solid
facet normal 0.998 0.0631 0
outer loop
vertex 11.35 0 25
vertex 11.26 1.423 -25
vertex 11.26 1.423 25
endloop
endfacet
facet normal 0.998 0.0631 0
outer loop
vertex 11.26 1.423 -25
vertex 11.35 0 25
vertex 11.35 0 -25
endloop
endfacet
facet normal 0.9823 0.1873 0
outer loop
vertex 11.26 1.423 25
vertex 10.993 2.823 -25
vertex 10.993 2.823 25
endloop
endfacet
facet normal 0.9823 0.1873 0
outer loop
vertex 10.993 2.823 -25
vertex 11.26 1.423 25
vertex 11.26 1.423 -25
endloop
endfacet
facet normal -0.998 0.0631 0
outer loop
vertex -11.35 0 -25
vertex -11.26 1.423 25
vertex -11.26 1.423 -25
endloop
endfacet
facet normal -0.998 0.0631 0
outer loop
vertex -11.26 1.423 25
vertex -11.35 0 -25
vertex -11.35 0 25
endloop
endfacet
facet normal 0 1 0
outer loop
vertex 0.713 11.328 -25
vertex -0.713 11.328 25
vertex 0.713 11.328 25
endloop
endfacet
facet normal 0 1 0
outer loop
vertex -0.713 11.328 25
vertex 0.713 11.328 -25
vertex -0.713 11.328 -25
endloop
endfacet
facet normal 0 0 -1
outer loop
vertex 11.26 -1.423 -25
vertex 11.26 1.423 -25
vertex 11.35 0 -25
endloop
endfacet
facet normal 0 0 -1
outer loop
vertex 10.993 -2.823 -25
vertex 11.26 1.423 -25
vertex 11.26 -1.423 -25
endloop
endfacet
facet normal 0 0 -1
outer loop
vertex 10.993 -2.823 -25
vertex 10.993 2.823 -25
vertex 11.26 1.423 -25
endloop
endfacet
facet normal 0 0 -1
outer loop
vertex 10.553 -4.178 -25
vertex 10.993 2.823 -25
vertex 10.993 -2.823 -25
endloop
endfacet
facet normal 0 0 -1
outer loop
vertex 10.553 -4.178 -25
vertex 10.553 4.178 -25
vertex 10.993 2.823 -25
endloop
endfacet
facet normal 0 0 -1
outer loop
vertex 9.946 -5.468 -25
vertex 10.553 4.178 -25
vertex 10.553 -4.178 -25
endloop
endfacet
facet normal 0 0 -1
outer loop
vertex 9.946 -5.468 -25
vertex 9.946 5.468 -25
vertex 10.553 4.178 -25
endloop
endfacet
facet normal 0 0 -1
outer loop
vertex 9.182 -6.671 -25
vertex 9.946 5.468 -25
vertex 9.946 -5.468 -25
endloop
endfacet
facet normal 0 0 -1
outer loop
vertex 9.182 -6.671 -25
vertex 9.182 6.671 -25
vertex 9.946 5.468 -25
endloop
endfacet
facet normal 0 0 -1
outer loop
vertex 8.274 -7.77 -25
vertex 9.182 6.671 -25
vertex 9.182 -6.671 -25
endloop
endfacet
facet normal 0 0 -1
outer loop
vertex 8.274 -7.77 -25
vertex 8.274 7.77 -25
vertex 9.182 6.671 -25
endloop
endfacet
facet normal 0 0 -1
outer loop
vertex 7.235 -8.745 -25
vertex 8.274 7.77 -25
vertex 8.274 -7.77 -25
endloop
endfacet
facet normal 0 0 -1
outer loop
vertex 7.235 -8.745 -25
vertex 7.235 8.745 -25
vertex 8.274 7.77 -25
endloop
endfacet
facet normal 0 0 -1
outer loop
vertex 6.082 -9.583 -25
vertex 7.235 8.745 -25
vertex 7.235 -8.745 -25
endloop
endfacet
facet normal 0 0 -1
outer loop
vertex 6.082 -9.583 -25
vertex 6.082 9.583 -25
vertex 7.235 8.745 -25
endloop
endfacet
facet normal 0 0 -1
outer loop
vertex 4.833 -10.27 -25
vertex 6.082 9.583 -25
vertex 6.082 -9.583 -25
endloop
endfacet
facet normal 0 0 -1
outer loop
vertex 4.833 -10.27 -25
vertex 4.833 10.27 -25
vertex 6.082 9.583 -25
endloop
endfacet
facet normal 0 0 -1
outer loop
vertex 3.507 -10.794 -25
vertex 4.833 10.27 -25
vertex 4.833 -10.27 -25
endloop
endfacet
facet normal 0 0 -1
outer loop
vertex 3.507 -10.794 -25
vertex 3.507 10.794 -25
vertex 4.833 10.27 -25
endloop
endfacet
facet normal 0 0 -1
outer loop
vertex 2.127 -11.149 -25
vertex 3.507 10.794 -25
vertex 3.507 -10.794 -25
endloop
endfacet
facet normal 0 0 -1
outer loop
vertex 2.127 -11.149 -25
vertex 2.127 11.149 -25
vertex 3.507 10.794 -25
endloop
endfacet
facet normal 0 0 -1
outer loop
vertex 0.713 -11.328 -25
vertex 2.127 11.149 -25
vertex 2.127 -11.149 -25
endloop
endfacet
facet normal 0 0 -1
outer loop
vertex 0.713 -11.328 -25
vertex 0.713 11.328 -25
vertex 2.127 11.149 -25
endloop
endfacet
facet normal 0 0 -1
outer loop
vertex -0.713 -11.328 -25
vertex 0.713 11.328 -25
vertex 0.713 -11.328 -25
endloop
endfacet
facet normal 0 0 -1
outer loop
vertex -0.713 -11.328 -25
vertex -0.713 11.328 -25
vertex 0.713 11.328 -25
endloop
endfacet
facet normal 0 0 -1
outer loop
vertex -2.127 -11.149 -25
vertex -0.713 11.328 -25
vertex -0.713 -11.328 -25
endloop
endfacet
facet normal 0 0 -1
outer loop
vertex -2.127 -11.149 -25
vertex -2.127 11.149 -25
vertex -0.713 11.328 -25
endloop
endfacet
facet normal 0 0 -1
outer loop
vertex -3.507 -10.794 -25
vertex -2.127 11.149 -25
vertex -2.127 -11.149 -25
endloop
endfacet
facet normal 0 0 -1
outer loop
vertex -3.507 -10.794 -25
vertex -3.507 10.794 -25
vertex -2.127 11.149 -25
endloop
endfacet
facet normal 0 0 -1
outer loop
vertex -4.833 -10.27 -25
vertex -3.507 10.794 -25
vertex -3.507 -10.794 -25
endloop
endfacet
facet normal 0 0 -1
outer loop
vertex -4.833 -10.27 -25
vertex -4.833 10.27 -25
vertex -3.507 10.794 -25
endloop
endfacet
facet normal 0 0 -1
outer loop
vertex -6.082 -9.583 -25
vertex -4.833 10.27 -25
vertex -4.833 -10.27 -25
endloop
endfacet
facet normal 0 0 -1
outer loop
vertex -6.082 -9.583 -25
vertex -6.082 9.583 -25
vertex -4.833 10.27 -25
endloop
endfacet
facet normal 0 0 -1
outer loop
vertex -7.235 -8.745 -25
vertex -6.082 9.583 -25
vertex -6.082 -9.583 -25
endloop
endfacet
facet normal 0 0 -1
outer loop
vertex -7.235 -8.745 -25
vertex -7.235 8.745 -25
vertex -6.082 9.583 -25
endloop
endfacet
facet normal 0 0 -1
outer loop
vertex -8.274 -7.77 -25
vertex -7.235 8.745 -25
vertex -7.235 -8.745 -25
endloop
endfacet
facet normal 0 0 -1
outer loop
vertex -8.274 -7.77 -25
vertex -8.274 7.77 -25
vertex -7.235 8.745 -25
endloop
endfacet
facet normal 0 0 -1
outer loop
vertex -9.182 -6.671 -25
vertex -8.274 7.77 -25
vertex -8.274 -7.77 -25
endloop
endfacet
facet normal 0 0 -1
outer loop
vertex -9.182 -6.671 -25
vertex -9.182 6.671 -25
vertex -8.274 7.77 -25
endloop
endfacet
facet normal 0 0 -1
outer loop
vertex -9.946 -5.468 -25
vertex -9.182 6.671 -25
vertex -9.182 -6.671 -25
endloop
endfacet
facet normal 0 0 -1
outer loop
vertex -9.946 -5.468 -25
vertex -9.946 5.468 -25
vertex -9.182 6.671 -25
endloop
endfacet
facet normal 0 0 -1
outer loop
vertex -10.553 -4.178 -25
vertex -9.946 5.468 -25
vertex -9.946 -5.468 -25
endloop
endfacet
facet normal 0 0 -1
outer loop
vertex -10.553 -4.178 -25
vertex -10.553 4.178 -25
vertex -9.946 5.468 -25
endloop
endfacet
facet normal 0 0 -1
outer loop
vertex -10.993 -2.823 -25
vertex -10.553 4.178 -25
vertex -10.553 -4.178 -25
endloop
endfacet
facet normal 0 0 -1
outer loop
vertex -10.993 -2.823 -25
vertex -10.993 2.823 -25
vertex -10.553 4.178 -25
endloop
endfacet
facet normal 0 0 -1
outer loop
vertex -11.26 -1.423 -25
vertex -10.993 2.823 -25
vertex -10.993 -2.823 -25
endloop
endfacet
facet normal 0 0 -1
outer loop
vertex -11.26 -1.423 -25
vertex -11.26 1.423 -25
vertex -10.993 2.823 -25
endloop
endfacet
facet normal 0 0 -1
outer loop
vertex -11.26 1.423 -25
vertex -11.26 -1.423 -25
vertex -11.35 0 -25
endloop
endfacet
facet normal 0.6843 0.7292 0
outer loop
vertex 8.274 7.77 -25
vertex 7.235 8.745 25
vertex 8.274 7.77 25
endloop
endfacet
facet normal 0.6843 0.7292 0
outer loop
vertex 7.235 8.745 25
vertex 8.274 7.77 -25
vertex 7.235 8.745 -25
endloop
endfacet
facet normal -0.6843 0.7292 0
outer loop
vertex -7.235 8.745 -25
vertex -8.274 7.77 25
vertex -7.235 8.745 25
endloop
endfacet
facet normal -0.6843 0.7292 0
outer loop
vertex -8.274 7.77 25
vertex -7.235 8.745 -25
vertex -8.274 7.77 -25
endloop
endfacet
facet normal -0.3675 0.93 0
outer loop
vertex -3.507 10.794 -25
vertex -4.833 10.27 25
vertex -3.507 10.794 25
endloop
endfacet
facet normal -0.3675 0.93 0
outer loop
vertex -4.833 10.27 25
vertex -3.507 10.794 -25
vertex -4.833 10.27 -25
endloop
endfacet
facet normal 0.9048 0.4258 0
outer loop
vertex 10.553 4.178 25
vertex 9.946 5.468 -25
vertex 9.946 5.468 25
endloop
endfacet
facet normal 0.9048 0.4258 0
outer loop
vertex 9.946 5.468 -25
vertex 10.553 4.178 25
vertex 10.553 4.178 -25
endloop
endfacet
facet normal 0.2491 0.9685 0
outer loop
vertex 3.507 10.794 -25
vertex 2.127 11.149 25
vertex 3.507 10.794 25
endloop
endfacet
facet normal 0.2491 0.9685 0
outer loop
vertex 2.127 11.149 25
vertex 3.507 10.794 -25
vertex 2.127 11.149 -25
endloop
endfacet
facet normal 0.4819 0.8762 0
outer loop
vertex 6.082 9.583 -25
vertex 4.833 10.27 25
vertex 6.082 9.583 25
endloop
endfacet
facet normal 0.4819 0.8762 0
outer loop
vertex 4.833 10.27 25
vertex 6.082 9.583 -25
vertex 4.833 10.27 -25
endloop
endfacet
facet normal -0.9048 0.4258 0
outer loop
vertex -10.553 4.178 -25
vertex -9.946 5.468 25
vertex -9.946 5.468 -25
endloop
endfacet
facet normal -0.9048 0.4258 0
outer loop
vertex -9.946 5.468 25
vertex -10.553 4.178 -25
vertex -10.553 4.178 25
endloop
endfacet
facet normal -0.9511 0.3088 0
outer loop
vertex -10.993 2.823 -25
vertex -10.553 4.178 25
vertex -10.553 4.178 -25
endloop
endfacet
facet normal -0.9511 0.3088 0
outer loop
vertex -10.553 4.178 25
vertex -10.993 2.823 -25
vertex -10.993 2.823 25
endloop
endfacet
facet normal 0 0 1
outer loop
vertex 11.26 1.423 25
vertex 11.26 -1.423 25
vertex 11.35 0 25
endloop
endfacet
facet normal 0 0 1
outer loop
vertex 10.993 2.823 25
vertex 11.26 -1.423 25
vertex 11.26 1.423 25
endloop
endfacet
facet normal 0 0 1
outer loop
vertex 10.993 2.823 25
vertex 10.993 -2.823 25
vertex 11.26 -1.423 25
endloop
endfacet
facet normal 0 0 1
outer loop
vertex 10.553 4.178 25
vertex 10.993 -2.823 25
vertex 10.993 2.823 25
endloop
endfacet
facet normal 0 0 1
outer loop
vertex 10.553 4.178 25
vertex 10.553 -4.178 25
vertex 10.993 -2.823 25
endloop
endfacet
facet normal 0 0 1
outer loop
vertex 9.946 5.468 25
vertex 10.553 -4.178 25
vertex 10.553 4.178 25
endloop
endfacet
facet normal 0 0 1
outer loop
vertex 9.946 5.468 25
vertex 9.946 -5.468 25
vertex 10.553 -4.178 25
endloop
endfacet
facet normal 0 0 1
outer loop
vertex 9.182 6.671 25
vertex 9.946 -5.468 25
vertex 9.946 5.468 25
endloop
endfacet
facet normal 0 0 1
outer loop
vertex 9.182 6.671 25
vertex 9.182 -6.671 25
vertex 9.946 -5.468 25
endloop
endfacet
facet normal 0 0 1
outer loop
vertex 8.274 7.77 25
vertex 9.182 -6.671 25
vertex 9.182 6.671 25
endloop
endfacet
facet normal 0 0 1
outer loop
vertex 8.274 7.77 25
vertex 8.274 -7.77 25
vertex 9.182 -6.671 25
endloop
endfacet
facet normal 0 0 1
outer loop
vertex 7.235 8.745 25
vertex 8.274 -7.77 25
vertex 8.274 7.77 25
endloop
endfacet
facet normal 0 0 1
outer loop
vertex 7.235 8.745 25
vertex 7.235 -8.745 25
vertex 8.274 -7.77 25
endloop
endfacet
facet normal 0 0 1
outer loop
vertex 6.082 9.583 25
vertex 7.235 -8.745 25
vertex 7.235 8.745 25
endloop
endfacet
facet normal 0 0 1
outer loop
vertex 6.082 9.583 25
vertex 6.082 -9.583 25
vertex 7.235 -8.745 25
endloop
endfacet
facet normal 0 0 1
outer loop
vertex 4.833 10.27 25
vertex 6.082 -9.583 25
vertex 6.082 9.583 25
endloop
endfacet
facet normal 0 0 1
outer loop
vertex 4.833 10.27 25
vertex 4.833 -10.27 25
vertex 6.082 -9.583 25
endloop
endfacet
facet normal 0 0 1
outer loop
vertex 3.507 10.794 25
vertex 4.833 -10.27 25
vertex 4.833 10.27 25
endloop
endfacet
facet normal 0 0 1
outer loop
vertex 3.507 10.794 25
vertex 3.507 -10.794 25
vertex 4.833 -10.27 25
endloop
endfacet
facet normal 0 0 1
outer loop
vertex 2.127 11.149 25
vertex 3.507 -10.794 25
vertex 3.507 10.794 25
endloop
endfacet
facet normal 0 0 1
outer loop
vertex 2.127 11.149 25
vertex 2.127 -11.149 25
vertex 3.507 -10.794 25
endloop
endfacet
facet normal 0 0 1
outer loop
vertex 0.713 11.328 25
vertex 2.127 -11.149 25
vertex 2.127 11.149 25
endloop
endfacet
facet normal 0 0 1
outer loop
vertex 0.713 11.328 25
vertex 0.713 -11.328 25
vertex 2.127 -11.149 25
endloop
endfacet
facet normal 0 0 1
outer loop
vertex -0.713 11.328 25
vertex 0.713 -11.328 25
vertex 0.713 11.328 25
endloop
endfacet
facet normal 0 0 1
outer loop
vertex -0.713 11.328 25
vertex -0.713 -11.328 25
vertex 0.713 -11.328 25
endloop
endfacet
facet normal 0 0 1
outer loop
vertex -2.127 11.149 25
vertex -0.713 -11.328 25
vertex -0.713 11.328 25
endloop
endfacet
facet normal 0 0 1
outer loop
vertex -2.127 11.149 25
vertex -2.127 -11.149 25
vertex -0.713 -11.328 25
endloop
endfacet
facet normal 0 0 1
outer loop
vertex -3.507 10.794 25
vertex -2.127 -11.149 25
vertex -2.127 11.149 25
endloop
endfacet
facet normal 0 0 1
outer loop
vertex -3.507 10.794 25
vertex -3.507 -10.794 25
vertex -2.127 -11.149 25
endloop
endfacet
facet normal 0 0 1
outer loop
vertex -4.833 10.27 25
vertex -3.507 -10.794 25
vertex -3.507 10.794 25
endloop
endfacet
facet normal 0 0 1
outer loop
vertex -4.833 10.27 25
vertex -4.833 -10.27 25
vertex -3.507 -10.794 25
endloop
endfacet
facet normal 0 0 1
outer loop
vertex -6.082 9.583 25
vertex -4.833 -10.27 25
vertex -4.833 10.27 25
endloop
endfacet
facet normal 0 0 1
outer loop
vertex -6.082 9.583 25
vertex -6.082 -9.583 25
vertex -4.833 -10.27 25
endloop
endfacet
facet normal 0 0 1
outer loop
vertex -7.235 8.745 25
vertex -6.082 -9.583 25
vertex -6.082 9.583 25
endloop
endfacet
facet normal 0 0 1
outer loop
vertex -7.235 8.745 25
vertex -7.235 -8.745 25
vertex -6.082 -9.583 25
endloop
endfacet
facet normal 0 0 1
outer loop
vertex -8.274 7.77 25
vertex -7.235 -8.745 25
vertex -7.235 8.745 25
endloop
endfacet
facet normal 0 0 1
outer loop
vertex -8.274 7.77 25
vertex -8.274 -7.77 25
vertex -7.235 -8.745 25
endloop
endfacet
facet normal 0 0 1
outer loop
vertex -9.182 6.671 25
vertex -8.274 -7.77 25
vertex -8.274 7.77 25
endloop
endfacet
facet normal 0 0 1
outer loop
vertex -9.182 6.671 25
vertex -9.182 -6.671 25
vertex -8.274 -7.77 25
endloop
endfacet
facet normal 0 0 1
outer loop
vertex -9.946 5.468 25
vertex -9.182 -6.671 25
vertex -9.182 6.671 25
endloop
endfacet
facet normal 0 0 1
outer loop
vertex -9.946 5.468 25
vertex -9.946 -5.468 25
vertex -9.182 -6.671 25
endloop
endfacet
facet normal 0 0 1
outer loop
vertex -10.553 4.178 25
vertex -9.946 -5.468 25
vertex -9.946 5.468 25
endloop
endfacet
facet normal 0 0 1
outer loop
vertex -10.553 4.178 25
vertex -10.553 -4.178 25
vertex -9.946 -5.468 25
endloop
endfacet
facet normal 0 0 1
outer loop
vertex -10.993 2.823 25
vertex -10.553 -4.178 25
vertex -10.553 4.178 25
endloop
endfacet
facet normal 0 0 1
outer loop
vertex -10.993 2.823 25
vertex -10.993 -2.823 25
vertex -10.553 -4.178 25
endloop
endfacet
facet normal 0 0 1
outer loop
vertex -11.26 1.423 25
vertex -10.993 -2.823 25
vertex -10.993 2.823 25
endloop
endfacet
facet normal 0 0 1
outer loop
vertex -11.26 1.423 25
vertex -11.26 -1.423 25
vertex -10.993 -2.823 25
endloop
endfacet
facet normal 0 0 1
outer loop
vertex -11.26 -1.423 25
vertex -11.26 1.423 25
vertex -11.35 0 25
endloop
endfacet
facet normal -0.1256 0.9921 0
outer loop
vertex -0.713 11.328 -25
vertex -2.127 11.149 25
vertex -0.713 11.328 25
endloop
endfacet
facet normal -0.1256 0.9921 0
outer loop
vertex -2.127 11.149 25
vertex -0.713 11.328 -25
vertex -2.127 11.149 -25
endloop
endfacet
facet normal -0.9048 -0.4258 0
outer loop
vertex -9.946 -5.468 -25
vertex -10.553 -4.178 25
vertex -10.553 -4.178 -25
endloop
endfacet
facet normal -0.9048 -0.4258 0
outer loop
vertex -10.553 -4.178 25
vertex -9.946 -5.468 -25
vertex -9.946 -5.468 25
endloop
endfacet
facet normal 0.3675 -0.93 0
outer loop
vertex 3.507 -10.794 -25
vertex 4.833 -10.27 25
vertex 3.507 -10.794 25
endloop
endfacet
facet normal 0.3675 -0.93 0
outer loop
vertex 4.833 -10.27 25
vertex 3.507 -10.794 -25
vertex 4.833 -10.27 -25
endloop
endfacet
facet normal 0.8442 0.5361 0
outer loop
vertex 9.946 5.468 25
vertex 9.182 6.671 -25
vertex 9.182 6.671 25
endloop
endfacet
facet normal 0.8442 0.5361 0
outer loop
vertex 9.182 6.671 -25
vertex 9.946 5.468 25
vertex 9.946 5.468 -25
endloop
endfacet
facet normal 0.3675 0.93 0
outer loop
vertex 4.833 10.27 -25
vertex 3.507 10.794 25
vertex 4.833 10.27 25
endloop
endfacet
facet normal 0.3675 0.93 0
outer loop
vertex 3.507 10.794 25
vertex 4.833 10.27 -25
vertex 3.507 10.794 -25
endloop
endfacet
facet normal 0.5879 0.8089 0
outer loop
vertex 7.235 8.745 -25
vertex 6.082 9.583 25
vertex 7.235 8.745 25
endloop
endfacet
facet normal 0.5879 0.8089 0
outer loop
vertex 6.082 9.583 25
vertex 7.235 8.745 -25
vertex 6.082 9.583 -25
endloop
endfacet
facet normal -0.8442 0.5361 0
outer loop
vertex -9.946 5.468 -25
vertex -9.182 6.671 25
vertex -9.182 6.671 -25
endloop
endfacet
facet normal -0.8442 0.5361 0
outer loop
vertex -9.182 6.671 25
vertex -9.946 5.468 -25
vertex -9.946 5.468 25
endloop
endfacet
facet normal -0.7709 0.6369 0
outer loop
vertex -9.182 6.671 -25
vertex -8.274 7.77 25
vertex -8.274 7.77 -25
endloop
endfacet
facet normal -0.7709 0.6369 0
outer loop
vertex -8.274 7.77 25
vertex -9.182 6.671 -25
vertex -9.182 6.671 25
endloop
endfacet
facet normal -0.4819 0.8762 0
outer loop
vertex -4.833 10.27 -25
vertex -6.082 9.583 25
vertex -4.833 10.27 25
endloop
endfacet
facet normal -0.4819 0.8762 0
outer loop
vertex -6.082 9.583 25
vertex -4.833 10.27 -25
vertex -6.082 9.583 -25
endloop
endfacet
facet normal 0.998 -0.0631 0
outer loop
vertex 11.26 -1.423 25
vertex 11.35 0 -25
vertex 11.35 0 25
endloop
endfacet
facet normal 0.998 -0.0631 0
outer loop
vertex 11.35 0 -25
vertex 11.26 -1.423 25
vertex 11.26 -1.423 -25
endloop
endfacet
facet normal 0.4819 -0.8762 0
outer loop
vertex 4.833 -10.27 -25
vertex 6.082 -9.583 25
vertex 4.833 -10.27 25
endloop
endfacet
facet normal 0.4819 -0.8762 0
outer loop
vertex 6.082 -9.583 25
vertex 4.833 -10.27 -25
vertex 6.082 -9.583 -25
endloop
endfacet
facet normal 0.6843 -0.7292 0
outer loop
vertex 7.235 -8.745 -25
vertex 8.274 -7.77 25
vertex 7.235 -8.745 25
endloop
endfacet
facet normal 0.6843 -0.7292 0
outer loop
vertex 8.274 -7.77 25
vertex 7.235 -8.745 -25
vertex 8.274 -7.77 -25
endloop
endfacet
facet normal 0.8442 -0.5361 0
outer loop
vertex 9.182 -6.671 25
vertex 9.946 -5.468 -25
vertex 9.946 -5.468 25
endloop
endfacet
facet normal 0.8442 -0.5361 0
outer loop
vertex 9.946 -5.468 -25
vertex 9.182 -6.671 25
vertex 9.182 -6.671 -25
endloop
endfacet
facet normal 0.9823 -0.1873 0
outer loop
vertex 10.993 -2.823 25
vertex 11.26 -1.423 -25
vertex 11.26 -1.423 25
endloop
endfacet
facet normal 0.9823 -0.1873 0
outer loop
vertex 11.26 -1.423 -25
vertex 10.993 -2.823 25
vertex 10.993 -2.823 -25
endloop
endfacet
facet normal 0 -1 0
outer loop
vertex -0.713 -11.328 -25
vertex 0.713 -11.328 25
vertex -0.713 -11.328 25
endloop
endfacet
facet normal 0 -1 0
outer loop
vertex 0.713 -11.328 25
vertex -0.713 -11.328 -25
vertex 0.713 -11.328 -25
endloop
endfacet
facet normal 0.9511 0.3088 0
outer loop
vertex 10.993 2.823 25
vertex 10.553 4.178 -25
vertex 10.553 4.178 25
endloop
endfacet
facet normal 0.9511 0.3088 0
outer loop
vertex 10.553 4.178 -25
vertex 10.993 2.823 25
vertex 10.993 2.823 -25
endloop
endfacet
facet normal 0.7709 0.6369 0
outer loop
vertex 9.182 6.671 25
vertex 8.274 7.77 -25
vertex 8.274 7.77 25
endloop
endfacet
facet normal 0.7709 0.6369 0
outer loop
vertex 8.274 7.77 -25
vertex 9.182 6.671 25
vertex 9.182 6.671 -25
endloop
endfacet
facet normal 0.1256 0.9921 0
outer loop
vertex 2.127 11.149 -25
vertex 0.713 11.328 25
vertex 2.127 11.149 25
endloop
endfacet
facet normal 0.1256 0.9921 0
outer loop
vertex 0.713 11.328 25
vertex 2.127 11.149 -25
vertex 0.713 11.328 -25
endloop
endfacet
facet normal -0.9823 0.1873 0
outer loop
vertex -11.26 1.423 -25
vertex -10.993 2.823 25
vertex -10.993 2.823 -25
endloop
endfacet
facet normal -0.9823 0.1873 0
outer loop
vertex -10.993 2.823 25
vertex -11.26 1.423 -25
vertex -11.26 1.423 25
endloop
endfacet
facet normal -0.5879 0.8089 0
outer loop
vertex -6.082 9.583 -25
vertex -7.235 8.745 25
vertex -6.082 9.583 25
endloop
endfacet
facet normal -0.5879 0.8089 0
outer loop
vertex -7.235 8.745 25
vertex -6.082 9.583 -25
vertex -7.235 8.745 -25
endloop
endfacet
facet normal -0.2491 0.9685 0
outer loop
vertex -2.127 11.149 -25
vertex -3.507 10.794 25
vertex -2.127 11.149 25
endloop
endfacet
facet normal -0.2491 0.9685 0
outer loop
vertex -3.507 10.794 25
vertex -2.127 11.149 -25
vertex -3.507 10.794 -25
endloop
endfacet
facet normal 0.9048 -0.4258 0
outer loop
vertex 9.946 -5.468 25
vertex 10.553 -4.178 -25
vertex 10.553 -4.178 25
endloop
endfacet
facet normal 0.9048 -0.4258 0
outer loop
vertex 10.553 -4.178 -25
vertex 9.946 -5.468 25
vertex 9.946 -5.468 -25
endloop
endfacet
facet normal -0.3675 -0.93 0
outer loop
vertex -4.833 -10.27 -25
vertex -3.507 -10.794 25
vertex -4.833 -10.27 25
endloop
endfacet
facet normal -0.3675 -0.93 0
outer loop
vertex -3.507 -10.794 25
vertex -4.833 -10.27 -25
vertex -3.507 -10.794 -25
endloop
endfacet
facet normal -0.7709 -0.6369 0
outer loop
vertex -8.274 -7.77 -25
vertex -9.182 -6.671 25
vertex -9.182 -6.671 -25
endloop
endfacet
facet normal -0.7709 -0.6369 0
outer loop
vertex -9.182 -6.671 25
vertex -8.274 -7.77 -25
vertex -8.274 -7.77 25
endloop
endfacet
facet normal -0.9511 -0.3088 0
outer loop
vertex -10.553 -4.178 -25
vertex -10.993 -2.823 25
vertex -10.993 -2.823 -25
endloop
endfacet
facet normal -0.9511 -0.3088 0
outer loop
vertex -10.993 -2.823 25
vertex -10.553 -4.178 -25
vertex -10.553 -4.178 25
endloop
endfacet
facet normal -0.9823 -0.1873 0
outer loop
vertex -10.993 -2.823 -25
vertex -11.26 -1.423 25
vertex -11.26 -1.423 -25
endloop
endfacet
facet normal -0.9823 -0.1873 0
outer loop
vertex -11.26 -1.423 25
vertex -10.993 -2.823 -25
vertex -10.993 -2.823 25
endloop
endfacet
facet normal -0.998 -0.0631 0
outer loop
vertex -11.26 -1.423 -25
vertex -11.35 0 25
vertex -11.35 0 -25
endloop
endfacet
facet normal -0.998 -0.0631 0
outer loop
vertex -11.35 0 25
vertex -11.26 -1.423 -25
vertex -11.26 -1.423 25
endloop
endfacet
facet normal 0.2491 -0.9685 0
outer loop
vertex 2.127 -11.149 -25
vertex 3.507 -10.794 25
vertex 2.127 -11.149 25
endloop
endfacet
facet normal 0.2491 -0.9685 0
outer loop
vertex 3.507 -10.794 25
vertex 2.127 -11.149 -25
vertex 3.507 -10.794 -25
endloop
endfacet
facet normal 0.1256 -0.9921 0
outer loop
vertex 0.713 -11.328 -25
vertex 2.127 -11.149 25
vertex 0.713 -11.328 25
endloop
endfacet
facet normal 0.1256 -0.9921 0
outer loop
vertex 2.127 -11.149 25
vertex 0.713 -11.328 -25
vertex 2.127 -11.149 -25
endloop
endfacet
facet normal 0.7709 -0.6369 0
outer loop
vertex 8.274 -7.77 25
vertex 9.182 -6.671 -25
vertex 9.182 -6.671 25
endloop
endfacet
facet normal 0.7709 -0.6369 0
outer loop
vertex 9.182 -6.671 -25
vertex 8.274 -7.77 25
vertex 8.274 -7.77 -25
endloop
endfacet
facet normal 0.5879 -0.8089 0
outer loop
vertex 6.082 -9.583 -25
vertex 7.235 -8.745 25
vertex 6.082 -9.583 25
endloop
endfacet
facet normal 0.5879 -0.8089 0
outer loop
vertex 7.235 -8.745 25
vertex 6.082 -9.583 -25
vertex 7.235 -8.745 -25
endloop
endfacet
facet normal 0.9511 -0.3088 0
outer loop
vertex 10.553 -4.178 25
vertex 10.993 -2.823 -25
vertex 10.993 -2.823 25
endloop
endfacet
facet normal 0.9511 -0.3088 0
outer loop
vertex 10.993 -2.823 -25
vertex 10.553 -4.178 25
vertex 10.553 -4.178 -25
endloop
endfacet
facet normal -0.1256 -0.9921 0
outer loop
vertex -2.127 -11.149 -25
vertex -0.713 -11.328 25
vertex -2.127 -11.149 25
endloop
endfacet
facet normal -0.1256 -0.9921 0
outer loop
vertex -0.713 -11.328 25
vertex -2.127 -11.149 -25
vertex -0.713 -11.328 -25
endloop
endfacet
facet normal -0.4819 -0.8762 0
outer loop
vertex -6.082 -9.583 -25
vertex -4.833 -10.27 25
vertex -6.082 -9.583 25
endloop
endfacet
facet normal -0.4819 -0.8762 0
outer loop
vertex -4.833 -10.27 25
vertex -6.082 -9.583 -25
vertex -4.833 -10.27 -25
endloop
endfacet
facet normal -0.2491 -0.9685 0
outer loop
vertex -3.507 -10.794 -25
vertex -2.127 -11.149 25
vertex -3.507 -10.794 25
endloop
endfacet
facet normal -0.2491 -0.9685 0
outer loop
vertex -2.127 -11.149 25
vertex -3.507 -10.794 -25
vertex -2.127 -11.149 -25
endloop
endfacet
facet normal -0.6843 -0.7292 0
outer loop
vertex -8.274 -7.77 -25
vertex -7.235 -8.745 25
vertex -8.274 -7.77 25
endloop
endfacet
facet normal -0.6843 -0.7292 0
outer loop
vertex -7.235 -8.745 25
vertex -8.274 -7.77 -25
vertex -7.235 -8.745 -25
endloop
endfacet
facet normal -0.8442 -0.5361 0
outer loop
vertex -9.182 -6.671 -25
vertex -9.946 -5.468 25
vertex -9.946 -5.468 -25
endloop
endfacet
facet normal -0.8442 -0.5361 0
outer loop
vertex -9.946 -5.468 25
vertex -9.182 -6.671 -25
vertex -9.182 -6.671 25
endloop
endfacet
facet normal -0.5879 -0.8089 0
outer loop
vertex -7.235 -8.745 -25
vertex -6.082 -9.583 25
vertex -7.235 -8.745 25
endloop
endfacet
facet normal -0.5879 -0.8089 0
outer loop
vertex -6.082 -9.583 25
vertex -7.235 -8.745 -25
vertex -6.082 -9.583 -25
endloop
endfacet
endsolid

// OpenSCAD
$fn = 50;


difference() {
	union() {
		translate(v = [0, 0, -25.0000000000]) {
			cylinder(h = 50, r = 11.3500000000);
		}
	}
	union() {
		translate(v = [0, 0, -100.0000000000]) {
			cylinder(h = 200, r = 0);
		}
	}
}
